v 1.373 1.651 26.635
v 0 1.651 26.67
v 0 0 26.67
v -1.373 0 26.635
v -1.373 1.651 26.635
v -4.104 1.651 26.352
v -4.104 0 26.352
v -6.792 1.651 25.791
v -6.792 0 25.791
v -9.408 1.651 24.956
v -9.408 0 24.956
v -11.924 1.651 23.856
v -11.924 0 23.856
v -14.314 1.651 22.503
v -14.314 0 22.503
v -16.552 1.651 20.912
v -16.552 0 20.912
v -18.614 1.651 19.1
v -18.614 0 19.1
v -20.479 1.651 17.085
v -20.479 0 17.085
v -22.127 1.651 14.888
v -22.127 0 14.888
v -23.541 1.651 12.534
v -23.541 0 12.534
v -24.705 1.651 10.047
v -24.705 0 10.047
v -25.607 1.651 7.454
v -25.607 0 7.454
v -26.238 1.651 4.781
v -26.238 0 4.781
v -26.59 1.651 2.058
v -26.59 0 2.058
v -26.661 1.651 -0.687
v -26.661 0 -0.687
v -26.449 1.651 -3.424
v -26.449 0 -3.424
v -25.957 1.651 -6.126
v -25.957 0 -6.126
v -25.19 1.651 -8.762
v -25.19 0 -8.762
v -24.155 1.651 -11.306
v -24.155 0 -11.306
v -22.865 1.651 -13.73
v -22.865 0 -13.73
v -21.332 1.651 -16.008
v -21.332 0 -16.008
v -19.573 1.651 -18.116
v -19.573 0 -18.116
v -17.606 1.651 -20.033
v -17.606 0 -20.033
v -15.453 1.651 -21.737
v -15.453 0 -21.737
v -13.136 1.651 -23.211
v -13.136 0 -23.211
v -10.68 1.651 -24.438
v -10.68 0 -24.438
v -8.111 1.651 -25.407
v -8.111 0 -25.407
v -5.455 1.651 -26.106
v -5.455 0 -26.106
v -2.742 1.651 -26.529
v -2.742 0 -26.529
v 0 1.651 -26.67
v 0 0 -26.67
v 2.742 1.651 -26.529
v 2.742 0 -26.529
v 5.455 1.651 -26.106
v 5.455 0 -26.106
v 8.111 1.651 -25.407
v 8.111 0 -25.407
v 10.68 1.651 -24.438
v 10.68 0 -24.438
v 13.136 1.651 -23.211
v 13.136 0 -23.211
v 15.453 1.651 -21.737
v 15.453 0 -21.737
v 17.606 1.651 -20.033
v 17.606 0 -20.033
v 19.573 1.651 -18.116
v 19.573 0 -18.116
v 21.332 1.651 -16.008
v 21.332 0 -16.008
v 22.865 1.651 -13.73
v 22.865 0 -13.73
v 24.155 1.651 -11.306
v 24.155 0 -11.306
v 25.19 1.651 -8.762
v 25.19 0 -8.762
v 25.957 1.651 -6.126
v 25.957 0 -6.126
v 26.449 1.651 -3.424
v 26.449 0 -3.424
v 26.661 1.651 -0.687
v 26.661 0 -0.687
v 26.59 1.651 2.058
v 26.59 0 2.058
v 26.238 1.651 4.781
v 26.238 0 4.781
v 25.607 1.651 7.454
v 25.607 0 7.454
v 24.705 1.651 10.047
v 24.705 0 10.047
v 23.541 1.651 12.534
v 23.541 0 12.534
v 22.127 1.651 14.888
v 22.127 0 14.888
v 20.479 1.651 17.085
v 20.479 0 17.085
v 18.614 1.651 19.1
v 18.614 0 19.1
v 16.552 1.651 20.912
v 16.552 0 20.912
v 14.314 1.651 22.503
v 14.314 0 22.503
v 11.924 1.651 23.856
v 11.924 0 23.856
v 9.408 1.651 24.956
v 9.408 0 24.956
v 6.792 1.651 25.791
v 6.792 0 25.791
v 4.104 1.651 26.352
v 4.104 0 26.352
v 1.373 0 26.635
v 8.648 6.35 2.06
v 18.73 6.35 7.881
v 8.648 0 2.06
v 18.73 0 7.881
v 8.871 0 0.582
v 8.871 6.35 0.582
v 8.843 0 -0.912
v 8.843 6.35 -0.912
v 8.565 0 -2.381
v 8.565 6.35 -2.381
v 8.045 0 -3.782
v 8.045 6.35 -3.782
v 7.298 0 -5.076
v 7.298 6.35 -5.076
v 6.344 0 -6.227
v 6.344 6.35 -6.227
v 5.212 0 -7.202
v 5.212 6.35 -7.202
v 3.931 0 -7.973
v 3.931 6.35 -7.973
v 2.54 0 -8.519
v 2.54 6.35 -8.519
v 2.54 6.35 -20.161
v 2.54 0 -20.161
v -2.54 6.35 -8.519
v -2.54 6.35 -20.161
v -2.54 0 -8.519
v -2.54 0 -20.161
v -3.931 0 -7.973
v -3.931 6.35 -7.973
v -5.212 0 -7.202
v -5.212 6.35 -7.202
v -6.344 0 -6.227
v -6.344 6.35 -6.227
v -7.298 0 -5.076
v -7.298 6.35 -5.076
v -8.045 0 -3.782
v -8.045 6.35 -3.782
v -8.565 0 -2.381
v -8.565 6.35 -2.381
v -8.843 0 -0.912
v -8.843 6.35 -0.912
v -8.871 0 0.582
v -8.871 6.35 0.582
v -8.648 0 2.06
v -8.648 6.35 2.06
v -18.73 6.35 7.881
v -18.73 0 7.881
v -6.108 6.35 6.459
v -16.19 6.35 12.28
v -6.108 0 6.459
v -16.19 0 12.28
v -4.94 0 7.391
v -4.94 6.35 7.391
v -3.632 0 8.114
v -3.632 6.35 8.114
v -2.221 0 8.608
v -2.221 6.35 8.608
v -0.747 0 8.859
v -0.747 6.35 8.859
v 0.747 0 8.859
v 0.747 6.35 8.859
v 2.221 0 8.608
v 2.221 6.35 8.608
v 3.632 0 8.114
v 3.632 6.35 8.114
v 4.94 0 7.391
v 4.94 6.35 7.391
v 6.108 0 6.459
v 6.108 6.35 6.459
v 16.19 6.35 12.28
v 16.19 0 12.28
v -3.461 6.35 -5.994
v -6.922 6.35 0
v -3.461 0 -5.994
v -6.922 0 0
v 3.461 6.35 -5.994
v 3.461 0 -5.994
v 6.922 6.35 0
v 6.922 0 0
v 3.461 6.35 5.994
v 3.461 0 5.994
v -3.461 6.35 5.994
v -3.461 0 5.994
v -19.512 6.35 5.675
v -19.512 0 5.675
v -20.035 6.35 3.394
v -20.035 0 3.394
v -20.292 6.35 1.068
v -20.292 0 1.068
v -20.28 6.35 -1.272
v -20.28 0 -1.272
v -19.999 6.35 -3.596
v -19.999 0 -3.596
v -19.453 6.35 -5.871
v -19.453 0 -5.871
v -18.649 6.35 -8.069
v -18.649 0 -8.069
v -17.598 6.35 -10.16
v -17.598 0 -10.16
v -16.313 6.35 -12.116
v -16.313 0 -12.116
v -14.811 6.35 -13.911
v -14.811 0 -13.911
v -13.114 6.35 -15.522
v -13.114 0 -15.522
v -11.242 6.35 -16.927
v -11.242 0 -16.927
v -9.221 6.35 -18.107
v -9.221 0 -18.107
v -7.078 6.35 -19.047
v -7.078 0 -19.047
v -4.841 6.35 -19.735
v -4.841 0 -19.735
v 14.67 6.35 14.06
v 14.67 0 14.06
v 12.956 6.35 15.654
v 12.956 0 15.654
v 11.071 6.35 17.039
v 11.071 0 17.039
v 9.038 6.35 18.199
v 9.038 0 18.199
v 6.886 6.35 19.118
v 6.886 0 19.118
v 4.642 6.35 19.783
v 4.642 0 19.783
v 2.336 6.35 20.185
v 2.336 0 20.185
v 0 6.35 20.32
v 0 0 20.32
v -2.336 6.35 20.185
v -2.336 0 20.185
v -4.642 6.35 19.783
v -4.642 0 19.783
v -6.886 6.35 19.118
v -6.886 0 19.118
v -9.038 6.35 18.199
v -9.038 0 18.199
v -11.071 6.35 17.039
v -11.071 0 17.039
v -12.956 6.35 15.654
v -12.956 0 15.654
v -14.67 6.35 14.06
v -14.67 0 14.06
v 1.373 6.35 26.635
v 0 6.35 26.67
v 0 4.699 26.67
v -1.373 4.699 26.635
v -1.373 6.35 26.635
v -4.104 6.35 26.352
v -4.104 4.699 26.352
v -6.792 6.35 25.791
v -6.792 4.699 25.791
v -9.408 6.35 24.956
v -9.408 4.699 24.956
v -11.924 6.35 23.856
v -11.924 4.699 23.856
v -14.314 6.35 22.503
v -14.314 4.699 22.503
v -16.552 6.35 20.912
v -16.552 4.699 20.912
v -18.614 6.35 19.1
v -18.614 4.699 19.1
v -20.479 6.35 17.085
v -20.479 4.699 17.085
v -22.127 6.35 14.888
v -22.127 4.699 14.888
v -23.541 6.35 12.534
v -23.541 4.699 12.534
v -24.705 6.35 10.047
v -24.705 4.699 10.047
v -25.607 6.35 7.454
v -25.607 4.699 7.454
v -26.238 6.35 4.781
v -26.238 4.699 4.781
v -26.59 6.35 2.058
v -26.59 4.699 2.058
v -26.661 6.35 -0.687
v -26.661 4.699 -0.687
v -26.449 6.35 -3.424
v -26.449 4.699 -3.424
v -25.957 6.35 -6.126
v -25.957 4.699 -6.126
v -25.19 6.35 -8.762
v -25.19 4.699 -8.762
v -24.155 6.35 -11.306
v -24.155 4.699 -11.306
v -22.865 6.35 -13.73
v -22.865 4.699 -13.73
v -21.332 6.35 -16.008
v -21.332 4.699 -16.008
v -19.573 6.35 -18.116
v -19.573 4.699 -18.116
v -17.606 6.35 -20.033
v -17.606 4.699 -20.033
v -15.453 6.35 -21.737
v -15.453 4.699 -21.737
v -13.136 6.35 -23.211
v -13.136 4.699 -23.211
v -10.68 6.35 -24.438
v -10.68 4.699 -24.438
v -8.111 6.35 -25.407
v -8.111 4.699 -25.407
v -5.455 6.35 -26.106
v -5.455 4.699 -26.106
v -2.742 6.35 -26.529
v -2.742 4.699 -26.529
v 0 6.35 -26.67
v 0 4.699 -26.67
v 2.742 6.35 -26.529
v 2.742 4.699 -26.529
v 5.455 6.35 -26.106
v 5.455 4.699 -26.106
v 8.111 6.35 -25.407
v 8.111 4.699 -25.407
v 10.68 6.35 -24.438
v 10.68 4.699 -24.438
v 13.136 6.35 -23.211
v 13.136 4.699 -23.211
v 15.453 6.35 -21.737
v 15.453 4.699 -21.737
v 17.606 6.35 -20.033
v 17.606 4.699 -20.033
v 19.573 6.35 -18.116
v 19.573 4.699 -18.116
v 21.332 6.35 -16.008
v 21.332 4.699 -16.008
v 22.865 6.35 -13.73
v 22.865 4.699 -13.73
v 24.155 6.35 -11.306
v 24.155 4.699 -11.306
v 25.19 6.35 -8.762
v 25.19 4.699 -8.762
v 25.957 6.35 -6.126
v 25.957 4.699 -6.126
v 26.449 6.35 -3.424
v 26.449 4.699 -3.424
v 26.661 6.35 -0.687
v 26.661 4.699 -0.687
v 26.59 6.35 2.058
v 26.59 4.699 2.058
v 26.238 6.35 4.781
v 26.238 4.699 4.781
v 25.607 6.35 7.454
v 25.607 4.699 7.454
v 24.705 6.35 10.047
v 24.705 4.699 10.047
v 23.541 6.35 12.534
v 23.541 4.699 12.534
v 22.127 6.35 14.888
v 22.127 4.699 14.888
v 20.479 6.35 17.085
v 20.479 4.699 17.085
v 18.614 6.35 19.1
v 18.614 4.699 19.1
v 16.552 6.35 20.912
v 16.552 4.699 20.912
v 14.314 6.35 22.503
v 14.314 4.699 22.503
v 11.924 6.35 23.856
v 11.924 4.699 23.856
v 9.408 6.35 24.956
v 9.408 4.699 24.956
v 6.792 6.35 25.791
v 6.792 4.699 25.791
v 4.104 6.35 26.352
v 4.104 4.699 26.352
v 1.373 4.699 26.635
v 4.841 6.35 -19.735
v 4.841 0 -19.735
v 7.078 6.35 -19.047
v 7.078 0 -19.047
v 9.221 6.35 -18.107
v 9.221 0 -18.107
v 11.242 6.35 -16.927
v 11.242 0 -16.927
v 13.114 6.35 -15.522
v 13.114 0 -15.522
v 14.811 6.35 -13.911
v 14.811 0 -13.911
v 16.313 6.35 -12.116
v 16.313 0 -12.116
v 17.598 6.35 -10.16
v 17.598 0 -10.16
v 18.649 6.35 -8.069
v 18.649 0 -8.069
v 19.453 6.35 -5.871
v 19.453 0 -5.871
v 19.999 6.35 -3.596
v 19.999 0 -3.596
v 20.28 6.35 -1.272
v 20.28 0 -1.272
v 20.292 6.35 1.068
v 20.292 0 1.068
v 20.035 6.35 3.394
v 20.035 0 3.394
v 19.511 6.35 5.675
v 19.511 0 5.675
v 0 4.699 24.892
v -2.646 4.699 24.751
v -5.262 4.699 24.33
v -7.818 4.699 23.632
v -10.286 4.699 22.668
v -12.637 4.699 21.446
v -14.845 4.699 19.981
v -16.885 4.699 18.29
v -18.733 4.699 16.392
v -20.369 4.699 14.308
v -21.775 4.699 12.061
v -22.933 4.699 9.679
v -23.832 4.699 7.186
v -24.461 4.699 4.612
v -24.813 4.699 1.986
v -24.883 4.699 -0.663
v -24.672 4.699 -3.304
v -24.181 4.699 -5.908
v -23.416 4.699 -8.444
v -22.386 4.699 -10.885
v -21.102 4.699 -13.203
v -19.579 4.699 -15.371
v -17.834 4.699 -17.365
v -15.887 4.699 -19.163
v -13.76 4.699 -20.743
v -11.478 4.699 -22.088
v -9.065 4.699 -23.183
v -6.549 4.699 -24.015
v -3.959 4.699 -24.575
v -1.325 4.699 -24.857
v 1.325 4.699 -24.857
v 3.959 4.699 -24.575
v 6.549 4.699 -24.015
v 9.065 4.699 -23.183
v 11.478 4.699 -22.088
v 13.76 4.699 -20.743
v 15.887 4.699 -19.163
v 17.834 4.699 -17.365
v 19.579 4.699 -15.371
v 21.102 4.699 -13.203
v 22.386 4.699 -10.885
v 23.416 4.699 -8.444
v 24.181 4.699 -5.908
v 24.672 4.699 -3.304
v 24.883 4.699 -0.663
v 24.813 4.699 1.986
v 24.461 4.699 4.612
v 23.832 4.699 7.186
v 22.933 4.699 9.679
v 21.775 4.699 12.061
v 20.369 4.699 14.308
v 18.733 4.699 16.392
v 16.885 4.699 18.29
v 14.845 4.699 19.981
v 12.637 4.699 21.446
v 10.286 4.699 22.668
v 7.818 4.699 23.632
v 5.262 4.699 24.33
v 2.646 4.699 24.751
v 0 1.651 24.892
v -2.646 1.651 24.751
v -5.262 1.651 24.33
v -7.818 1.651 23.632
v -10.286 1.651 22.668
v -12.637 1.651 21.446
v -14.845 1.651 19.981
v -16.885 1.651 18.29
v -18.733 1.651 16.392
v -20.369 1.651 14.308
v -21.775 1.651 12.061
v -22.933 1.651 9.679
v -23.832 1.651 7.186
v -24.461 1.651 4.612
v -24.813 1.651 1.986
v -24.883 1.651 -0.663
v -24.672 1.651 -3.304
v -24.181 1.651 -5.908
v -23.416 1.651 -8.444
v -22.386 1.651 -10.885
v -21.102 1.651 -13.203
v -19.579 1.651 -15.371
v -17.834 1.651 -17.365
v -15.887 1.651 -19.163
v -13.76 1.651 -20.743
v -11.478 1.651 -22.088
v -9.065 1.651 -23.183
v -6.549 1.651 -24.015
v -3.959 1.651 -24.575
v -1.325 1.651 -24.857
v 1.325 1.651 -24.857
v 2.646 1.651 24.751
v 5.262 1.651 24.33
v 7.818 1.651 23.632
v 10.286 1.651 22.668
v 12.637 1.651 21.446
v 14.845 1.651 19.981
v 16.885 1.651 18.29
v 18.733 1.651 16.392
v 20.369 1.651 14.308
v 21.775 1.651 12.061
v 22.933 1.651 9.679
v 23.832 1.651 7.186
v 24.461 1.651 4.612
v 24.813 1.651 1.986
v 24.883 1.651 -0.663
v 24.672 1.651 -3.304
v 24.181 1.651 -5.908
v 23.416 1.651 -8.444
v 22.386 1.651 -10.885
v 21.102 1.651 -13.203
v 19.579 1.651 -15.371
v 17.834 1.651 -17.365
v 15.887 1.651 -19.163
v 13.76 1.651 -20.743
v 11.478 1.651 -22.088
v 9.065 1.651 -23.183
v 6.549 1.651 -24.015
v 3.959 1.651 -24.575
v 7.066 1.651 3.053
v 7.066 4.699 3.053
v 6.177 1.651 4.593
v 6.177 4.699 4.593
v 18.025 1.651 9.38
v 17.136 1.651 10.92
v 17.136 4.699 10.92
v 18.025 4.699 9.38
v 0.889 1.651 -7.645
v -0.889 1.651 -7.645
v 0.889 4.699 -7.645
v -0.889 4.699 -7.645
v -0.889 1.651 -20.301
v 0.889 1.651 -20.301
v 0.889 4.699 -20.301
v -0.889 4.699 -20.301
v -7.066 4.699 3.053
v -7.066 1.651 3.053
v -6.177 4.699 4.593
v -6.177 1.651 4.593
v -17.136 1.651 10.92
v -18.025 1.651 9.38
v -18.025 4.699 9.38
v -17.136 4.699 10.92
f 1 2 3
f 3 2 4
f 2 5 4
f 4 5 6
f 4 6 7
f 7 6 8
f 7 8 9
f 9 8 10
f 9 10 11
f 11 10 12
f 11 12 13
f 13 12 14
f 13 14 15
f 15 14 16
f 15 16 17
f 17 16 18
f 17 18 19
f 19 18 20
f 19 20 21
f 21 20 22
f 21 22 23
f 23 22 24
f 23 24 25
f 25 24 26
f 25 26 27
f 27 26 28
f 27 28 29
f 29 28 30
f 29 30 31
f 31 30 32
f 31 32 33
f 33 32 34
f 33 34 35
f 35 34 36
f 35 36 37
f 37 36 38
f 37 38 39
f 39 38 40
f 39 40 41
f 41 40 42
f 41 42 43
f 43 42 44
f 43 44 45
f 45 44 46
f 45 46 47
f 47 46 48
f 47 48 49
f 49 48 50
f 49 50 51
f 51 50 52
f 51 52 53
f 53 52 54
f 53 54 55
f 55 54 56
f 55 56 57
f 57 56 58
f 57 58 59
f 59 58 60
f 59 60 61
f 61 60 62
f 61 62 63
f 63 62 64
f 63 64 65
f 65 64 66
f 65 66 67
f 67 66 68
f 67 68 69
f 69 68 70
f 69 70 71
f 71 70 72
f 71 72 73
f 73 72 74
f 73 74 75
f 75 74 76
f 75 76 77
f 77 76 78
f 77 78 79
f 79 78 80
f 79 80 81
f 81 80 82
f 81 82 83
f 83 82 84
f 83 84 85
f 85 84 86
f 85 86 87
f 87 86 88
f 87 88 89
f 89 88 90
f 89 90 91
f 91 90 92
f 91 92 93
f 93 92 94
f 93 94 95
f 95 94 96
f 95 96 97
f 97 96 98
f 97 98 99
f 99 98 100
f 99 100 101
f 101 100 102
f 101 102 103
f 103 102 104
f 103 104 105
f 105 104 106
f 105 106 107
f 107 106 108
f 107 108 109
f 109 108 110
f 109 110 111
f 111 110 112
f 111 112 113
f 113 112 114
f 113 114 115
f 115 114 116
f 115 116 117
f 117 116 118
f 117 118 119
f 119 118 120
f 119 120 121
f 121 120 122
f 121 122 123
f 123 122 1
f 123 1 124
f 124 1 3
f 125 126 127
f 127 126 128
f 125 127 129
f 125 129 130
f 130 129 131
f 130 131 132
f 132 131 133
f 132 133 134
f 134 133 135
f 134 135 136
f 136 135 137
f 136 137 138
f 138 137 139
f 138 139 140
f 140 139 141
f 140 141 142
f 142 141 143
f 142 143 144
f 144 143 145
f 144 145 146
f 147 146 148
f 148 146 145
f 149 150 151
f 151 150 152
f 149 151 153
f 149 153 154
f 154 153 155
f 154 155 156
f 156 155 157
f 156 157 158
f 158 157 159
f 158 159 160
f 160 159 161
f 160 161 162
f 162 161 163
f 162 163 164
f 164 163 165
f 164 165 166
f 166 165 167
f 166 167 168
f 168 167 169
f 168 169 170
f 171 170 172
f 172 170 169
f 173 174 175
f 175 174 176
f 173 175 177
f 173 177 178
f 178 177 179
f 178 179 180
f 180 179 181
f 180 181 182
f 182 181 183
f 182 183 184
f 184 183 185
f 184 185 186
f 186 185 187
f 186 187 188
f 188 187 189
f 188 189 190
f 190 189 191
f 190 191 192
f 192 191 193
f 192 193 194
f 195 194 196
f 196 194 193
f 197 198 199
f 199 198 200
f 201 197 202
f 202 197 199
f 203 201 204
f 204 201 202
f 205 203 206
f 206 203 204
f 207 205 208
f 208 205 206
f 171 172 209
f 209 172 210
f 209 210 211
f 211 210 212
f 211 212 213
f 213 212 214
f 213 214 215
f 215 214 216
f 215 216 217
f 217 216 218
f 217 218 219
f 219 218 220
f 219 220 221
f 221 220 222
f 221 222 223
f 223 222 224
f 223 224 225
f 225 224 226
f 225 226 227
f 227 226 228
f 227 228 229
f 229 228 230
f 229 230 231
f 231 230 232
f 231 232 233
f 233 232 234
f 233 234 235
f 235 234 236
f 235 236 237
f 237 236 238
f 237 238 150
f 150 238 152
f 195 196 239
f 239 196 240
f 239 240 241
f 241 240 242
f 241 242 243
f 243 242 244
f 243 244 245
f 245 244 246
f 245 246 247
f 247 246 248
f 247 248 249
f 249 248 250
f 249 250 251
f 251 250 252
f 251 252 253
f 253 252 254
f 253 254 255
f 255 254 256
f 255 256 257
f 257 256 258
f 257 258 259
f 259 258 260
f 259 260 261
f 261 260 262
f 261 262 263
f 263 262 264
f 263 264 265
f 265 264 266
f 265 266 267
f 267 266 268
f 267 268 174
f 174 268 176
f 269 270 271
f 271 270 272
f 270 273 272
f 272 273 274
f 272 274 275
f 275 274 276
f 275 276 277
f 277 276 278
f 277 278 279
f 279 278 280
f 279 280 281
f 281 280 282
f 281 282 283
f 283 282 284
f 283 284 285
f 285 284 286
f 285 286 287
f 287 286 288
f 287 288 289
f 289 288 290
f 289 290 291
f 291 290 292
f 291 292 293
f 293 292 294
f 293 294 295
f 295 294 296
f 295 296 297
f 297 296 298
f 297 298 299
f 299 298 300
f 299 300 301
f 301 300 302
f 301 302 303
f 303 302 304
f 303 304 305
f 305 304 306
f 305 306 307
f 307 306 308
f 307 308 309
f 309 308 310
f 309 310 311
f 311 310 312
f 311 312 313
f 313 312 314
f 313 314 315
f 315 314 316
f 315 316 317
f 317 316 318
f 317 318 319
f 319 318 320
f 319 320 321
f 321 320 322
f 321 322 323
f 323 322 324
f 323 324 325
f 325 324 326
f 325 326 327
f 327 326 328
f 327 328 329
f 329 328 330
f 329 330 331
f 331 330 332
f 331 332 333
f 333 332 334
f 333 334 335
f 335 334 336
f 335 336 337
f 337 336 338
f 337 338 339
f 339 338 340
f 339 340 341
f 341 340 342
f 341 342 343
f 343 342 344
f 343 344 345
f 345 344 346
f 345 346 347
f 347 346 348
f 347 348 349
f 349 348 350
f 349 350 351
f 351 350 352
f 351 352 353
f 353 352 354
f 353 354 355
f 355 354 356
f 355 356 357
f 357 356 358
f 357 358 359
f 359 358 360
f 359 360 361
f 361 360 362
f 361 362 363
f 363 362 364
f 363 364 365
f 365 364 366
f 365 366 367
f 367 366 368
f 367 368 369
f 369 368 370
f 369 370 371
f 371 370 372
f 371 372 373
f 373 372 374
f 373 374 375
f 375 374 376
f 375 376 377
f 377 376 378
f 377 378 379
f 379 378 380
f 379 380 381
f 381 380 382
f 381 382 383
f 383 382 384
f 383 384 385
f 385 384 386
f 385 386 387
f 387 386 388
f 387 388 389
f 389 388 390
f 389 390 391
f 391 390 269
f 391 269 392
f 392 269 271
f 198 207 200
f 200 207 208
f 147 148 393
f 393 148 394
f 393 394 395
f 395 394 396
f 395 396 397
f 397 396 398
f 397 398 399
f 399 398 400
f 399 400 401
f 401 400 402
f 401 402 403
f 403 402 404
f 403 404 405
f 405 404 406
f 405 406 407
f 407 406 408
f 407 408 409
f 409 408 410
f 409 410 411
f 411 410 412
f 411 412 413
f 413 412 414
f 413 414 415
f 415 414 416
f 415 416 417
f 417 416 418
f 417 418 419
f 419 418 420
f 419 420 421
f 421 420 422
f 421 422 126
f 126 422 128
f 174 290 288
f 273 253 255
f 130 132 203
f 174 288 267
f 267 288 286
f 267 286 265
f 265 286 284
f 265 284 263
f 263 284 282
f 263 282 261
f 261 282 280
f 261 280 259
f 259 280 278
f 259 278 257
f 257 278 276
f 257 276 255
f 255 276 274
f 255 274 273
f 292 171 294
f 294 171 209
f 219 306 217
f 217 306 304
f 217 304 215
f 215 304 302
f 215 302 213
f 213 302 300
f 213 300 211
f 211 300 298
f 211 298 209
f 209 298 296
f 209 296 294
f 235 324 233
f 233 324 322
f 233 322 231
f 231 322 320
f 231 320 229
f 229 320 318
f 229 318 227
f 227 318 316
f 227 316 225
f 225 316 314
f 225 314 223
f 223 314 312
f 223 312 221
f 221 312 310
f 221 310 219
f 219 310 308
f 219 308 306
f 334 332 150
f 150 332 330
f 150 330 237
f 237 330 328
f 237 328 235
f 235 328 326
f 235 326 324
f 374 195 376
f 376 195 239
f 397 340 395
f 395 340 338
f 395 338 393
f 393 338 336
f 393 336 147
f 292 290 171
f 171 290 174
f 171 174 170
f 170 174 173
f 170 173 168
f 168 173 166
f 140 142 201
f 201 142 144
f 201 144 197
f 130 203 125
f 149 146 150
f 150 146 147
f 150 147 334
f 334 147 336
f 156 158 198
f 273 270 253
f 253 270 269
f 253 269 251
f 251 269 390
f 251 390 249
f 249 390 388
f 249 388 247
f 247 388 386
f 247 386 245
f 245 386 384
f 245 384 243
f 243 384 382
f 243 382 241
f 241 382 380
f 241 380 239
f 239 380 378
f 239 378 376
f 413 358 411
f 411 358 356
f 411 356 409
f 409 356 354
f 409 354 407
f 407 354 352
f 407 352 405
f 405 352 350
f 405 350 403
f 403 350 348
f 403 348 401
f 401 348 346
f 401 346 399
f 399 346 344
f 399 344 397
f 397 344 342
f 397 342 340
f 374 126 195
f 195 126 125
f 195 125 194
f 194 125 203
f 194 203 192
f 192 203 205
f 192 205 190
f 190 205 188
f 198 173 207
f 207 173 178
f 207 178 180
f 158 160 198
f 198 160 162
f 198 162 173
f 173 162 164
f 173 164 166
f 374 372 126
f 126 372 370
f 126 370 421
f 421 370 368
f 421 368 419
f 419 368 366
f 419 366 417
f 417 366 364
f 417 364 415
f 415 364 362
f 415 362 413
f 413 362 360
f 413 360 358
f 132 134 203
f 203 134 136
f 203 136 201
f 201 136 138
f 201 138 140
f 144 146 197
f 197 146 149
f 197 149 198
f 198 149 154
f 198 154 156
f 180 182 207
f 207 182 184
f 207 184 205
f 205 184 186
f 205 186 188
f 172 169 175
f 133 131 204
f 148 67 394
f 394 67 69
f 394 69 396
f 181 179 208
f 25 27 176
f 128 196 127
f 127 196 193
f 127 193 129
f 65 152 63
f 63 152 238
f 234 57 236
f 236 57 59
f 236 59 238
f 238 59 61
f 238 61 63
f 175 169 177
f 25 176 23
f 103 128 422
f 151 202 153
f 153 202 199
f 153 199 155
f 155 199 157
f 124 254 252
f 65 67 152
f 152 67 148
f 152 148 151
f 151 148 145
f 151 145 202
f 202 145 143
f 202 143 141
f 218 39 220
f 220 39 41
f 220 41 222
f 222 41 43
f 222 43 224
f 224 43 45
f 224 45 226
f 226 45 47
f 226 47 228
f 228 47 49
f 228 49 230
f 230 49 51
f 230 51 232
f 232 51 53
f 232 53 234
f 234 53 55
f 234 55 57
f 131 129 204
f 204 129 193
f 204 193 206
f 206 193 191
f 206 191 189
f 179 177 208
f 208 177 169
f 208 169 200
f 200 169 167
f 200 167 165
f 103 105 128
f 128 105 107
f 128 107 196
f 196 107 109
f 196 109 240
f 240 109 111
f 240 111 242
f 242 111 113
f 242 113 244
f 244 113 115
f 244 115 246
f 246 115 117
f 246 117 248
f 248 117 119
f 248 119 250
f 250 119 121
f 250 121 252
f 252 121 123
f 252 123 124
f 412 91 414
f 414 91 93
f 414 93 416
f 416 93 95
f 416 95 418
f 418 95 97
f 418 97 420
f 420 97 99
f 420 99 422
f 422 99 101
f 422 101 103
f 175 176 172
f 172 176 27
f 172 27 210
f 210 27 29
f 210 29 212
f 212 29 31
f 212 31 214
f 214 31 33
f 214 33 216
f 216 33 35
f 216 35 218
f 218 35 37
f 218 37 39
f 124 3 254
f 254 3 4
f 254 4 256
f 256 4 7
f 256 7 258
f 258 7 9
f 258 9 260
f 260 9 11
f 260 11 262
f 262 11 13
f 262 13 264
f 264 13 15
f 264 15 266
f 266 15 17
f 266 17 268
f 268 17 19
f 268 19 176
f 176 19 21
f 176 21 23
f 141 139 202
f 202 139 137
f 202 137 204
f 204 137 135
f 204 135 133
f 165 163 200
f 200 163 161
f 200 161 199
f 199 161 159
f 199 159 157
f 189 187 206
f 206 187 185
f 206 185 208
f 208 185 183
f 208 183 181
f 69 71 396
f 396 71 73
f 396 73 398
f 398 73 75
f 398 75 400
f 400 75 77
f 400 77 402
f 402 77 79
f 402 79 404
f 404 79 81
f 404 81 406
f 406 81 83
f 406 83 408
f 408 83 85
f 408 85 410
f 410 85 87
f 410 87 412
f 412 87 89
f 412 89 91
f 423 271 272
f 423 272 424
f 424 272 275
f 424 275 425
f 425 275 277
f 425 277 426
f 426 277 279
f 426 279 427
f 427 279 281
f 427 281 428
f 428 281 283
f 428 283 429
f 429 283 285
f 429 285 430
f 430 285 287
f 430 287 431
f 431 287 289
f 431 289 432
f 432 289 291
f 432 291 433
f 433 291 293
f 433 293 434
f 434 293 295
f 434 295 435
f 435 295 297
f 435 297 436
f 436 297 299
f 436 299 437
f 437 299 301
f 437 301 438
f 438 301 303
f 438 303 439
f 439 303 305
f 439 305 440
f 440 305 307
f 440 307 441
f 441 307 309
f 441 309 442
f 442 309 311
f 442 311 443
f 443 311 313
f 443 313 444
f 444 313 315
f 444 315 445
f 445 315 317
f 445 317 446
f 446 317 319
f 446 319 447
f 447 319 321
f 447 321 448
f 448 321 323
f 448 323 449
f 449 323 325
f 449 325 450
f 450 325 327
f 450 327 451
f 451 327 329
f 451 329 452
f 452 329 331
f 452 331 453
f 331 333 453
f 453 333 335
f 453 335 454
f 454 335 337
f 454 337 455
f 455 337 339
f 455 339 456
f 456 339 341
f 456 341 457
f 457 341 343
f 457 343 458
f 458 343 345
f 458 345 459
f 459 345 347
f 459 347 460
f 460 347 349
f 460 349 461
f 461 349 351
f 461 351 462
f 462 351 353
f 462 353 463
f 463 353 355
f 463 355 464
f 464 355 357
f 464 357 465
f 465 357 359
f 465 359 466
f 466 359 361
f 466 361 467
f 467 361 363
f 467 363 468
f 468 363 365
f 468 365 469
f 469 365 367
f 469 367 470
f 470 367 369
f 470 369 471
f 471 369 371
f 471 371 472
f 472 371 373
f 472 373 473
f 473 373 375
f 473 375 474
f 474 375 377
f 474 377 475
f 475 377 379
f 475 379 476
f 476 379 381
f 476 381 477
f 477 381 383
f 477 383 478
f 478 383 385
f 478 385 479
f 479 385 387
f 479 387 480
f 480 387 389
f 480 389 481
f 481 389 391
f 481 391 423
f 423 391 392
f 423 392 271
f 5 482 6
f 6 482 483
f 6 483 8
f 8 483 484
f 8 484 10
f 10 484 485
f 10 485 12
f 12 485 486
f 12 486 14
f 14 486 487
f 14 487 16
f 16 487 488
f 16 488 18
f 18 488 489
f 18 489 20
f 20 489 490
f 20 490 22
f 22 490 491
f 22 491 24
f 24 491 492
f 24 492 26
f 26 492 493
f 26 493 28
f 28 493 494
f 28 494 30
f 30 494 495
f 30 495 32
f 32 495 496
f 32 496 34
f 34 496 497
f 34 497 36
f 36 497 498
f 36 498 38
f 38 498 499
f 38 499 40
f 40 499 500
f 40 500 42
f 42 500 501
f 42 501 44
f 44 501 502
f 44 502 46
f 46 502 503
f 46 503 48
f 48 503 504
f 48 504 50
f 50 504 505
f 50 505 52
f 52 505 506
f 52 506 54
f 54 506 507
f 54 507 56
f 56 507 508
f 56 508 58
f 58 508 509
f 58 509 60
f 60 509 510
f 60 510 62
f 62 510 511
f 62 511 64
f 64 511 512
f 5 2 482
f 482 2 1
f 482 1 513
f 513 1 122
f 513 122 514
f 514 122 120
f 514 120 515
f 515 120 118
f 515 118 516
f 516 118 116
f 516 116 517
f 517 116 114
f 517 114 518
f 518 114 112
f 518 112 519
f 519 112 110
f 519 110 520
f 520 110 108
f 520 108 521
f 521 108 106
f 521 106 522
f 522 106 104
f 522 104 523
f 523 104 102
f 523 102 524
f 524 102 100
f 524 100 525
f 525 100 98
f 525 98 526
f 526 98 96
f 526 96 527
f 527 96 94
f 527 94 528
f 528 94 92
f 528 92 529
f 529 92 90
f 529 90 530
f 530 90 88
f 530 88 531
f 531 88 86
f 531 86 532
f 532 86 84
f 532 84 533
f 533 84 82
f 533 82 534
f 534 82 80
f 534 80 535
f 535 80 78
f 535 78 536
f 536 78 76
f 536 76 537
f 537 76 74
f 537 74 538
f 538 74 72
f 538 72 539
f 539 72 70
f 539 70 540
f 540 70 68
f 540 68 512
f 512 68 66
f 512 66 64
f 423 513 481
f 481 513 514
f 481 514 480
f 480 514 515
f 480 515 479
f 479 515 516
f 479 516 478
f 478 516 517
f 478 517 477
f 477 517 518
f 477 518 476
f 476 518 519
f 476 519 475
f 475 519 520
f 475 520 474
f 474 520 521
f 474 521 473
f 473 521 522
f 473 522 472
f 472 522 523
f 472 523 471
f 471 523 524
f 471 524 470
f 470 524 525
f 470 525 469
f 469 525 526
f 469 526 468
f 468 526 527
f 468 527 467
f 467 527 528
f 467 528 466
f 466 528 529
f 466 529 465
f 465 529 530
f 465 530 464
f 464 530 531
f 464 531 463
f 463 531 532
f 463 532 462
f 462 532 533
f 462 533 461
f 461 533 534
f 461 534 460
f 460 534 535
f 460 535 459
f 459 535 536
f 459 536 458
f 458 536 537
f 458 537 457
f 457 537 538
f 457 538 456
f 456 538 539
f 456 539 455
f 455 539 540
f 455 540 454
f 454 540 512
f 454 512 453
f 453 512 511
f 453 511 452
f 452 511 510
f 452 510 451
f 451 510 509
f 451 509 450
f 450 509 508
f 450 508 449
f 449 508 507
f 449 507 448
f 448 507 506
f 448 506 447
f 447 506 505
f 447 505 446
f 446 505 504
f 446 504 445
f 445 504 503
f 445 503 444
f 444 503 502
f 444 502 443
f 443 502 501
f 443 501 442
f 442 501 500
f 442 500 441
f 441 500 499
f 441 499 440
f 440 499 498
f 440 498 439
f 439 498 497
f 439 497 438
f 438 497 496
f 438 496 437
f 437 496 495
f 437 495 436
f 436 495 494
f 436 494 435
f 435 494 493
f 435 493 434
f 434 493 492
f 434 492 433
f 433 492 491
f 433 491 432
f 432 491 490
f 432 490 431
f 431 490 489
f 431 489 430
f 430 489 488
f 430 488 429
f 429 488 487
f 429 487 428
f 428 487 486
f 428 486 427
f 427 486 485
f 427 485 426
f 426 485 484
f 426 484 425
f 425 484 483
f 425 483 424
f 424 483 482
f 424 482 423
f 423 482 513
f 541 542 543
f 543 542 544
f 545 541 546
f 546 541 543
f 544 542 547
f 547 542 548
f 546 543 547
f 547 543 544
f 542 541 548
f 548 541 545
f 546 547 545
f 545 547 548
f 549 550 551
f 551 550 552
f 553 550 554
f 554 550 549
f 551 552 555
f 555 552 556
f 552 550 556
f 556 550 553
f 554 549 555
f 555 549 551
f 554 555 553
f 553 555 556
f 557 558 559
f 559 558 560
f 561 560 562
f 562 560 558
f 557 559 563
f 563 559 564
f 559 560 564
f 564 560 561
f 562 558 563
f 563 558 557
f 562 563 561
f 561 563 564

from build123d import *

# Parameters (mm, degrees)
SKETCH1_R           = 26.67
BOSS_EXTRUDE1_DEPTH = 6.35
SHELL3_START        = 1.651
SHELL3_OUTLINE_R    = 26.67
SHELL3_DEPTH        = 3.048
BOSS_EXTRUDE3_START = -6.35
SKETCH7_R           = 24.892
SKETCH7_R_2         = 20.32
BOSS_EXTRUDE3_DEPTH = 6.35


# Read off the part's stored shape, not the designer's step: Shell3
with BuildPart() as part:
    # Sketch1 → Boss-Extrude1 (new body)
    with BuildSketch(Plane(origin=(0, 0, 0), x_dir=(1, 0, 0), z_dir=(0, 1, 0))):
        with Locations(Location((0, 0, 0), (0, 0, 270))):
            Circle(SKETCH1_R)
        Polygon((-5.19130268, 2.9972), (-6.921736907, 0), (-5.19130268, -2.9972), (-3.460868454, -5.9944), (3.460868454, -5.9944), (5.19130268, -2.9972), (6.921736907, 0), (5.19130268, 2.9972), (3.460868454, 5.9944), (-3.460868454, 5.9944), align=None, mode=Mode.SUBTRACT)
        with BuildLine():
            Line((-6.108033275, -6.459414023), (-16.189613398, -12.280017021))
            ThreePointArc((-16.189613398, -12.280017021), (0, -20.32), (16.189613398, -12.280017021))
            Line((16.189613398, -12.280017021), (6.108033275, -6.459414023))
            ThreePointArc((6.108033275, -6.459414023), (0, -8.89), (-6.108033275, -6.459414023))
        make_face(mode=Mode.SUBTRACT)
        with BuildLine():
            Line((-2.54, 8.519418994), (-2.54, 20.16062499))
            ThreePointArc((-2.54, 20.16062499), (-17.597636205, 10.16), (-18.729613398, -7.88060797))
            Line((-18.729613398, -7.88060797), (-8.648033275, -2.060004972))
            ThreePointArc((-8.648033275, -2.060004972), (-7.69896584, 4.445), (-2.54, 8.519418994))
        make_face(mode=Mode.SUBTRACT)
        with BuildLine():
            Line((8.648033275, -2.060004972), (18.729613398, -7.88060797))
            ThreePointArc((18.729613398, -7.88060797), (17.597636205, 10.16), (2.54, 20.16062499))
            Line((2.54, 20.16062499), (2.54, 8.519418994))
            ThreePointArc((2.54, 8.519418994), (7.69896584, 4.445), (8.648033275, -2.060004972))
        make_face(mode=Mode.SUBTRACT)
    extrude(amount=BOSS_EXTRUDE1_DEPTH)

    # Shell3 outline → Shell3 (cut)
    with BuildSketch(Plane(origin=(0, 0, 0), x_dir=(1, 0, 0), z_dir=(0, 1, 0)).offset(SHELL3_START)):
        Circle(SHELL3_OUTLINE_R)
        with BuildLine():
            ThreePointArc((0.889, 21.953007083), (19.027444147, 10.9855), (19.456361824, -10.206606958))
            Line((19.456361824, -10.206606958), (7.065610622, -3.052803416))
            Line((7.065610622, -3.052803416), (6.176610622, -4.592596584))
            Line((6.176610622, -4.592596584), (18.567361824, -11.746400126))
            ThreePointArc((18.567361824, -11.746400126), (0, -21.971), (-18.567361824, -11.746400126))
            Line((-18.567361824, -11.746400126), (-6.176610622, -4.592596584))
            Line((-6.176610622, -4.592596584), (-7.065610622, -3.052803416))
            Line((-7.065610622, -3.052803416), (-19.456361824, -10.206606958))
            ThreePointArc((-19.456361824, -10.206606958), (-19.027444147, 10.9855), (-0.889, 21.953007083))
            Line((-0.889, 21.953007083), (-0.889, 7.6454))
            Line((-0.889, 7.6454), (0.889, 7.6454))
            Line((0.889, 7.6454), (0.889, 21.953007083))
        make_face(mode=Mode.SUBTRACT)
    extrude(amount=SHELL3_DEPTH, mode=Mode.SUBTRACT)

    # Sketch7 → Boss-Extrude3 (add)
    with BuildSketch(Plane(origin=(0, 6.35, 0), x_dir=(1, 0, 0), z_dir=(0, 1, 0)).offset(BOSS_EXTRUDE3_START)):
        with Locations(Location((0, 0, 0), (0, 0, 270))):
            Circle(SKETCH7_R)
        Circle(SKETCH7_R_2, mode=Mode.SUBTRACT)
    extrude(amount=BOSS_EXTRUDE3_DEPTH)


solid = part.part
